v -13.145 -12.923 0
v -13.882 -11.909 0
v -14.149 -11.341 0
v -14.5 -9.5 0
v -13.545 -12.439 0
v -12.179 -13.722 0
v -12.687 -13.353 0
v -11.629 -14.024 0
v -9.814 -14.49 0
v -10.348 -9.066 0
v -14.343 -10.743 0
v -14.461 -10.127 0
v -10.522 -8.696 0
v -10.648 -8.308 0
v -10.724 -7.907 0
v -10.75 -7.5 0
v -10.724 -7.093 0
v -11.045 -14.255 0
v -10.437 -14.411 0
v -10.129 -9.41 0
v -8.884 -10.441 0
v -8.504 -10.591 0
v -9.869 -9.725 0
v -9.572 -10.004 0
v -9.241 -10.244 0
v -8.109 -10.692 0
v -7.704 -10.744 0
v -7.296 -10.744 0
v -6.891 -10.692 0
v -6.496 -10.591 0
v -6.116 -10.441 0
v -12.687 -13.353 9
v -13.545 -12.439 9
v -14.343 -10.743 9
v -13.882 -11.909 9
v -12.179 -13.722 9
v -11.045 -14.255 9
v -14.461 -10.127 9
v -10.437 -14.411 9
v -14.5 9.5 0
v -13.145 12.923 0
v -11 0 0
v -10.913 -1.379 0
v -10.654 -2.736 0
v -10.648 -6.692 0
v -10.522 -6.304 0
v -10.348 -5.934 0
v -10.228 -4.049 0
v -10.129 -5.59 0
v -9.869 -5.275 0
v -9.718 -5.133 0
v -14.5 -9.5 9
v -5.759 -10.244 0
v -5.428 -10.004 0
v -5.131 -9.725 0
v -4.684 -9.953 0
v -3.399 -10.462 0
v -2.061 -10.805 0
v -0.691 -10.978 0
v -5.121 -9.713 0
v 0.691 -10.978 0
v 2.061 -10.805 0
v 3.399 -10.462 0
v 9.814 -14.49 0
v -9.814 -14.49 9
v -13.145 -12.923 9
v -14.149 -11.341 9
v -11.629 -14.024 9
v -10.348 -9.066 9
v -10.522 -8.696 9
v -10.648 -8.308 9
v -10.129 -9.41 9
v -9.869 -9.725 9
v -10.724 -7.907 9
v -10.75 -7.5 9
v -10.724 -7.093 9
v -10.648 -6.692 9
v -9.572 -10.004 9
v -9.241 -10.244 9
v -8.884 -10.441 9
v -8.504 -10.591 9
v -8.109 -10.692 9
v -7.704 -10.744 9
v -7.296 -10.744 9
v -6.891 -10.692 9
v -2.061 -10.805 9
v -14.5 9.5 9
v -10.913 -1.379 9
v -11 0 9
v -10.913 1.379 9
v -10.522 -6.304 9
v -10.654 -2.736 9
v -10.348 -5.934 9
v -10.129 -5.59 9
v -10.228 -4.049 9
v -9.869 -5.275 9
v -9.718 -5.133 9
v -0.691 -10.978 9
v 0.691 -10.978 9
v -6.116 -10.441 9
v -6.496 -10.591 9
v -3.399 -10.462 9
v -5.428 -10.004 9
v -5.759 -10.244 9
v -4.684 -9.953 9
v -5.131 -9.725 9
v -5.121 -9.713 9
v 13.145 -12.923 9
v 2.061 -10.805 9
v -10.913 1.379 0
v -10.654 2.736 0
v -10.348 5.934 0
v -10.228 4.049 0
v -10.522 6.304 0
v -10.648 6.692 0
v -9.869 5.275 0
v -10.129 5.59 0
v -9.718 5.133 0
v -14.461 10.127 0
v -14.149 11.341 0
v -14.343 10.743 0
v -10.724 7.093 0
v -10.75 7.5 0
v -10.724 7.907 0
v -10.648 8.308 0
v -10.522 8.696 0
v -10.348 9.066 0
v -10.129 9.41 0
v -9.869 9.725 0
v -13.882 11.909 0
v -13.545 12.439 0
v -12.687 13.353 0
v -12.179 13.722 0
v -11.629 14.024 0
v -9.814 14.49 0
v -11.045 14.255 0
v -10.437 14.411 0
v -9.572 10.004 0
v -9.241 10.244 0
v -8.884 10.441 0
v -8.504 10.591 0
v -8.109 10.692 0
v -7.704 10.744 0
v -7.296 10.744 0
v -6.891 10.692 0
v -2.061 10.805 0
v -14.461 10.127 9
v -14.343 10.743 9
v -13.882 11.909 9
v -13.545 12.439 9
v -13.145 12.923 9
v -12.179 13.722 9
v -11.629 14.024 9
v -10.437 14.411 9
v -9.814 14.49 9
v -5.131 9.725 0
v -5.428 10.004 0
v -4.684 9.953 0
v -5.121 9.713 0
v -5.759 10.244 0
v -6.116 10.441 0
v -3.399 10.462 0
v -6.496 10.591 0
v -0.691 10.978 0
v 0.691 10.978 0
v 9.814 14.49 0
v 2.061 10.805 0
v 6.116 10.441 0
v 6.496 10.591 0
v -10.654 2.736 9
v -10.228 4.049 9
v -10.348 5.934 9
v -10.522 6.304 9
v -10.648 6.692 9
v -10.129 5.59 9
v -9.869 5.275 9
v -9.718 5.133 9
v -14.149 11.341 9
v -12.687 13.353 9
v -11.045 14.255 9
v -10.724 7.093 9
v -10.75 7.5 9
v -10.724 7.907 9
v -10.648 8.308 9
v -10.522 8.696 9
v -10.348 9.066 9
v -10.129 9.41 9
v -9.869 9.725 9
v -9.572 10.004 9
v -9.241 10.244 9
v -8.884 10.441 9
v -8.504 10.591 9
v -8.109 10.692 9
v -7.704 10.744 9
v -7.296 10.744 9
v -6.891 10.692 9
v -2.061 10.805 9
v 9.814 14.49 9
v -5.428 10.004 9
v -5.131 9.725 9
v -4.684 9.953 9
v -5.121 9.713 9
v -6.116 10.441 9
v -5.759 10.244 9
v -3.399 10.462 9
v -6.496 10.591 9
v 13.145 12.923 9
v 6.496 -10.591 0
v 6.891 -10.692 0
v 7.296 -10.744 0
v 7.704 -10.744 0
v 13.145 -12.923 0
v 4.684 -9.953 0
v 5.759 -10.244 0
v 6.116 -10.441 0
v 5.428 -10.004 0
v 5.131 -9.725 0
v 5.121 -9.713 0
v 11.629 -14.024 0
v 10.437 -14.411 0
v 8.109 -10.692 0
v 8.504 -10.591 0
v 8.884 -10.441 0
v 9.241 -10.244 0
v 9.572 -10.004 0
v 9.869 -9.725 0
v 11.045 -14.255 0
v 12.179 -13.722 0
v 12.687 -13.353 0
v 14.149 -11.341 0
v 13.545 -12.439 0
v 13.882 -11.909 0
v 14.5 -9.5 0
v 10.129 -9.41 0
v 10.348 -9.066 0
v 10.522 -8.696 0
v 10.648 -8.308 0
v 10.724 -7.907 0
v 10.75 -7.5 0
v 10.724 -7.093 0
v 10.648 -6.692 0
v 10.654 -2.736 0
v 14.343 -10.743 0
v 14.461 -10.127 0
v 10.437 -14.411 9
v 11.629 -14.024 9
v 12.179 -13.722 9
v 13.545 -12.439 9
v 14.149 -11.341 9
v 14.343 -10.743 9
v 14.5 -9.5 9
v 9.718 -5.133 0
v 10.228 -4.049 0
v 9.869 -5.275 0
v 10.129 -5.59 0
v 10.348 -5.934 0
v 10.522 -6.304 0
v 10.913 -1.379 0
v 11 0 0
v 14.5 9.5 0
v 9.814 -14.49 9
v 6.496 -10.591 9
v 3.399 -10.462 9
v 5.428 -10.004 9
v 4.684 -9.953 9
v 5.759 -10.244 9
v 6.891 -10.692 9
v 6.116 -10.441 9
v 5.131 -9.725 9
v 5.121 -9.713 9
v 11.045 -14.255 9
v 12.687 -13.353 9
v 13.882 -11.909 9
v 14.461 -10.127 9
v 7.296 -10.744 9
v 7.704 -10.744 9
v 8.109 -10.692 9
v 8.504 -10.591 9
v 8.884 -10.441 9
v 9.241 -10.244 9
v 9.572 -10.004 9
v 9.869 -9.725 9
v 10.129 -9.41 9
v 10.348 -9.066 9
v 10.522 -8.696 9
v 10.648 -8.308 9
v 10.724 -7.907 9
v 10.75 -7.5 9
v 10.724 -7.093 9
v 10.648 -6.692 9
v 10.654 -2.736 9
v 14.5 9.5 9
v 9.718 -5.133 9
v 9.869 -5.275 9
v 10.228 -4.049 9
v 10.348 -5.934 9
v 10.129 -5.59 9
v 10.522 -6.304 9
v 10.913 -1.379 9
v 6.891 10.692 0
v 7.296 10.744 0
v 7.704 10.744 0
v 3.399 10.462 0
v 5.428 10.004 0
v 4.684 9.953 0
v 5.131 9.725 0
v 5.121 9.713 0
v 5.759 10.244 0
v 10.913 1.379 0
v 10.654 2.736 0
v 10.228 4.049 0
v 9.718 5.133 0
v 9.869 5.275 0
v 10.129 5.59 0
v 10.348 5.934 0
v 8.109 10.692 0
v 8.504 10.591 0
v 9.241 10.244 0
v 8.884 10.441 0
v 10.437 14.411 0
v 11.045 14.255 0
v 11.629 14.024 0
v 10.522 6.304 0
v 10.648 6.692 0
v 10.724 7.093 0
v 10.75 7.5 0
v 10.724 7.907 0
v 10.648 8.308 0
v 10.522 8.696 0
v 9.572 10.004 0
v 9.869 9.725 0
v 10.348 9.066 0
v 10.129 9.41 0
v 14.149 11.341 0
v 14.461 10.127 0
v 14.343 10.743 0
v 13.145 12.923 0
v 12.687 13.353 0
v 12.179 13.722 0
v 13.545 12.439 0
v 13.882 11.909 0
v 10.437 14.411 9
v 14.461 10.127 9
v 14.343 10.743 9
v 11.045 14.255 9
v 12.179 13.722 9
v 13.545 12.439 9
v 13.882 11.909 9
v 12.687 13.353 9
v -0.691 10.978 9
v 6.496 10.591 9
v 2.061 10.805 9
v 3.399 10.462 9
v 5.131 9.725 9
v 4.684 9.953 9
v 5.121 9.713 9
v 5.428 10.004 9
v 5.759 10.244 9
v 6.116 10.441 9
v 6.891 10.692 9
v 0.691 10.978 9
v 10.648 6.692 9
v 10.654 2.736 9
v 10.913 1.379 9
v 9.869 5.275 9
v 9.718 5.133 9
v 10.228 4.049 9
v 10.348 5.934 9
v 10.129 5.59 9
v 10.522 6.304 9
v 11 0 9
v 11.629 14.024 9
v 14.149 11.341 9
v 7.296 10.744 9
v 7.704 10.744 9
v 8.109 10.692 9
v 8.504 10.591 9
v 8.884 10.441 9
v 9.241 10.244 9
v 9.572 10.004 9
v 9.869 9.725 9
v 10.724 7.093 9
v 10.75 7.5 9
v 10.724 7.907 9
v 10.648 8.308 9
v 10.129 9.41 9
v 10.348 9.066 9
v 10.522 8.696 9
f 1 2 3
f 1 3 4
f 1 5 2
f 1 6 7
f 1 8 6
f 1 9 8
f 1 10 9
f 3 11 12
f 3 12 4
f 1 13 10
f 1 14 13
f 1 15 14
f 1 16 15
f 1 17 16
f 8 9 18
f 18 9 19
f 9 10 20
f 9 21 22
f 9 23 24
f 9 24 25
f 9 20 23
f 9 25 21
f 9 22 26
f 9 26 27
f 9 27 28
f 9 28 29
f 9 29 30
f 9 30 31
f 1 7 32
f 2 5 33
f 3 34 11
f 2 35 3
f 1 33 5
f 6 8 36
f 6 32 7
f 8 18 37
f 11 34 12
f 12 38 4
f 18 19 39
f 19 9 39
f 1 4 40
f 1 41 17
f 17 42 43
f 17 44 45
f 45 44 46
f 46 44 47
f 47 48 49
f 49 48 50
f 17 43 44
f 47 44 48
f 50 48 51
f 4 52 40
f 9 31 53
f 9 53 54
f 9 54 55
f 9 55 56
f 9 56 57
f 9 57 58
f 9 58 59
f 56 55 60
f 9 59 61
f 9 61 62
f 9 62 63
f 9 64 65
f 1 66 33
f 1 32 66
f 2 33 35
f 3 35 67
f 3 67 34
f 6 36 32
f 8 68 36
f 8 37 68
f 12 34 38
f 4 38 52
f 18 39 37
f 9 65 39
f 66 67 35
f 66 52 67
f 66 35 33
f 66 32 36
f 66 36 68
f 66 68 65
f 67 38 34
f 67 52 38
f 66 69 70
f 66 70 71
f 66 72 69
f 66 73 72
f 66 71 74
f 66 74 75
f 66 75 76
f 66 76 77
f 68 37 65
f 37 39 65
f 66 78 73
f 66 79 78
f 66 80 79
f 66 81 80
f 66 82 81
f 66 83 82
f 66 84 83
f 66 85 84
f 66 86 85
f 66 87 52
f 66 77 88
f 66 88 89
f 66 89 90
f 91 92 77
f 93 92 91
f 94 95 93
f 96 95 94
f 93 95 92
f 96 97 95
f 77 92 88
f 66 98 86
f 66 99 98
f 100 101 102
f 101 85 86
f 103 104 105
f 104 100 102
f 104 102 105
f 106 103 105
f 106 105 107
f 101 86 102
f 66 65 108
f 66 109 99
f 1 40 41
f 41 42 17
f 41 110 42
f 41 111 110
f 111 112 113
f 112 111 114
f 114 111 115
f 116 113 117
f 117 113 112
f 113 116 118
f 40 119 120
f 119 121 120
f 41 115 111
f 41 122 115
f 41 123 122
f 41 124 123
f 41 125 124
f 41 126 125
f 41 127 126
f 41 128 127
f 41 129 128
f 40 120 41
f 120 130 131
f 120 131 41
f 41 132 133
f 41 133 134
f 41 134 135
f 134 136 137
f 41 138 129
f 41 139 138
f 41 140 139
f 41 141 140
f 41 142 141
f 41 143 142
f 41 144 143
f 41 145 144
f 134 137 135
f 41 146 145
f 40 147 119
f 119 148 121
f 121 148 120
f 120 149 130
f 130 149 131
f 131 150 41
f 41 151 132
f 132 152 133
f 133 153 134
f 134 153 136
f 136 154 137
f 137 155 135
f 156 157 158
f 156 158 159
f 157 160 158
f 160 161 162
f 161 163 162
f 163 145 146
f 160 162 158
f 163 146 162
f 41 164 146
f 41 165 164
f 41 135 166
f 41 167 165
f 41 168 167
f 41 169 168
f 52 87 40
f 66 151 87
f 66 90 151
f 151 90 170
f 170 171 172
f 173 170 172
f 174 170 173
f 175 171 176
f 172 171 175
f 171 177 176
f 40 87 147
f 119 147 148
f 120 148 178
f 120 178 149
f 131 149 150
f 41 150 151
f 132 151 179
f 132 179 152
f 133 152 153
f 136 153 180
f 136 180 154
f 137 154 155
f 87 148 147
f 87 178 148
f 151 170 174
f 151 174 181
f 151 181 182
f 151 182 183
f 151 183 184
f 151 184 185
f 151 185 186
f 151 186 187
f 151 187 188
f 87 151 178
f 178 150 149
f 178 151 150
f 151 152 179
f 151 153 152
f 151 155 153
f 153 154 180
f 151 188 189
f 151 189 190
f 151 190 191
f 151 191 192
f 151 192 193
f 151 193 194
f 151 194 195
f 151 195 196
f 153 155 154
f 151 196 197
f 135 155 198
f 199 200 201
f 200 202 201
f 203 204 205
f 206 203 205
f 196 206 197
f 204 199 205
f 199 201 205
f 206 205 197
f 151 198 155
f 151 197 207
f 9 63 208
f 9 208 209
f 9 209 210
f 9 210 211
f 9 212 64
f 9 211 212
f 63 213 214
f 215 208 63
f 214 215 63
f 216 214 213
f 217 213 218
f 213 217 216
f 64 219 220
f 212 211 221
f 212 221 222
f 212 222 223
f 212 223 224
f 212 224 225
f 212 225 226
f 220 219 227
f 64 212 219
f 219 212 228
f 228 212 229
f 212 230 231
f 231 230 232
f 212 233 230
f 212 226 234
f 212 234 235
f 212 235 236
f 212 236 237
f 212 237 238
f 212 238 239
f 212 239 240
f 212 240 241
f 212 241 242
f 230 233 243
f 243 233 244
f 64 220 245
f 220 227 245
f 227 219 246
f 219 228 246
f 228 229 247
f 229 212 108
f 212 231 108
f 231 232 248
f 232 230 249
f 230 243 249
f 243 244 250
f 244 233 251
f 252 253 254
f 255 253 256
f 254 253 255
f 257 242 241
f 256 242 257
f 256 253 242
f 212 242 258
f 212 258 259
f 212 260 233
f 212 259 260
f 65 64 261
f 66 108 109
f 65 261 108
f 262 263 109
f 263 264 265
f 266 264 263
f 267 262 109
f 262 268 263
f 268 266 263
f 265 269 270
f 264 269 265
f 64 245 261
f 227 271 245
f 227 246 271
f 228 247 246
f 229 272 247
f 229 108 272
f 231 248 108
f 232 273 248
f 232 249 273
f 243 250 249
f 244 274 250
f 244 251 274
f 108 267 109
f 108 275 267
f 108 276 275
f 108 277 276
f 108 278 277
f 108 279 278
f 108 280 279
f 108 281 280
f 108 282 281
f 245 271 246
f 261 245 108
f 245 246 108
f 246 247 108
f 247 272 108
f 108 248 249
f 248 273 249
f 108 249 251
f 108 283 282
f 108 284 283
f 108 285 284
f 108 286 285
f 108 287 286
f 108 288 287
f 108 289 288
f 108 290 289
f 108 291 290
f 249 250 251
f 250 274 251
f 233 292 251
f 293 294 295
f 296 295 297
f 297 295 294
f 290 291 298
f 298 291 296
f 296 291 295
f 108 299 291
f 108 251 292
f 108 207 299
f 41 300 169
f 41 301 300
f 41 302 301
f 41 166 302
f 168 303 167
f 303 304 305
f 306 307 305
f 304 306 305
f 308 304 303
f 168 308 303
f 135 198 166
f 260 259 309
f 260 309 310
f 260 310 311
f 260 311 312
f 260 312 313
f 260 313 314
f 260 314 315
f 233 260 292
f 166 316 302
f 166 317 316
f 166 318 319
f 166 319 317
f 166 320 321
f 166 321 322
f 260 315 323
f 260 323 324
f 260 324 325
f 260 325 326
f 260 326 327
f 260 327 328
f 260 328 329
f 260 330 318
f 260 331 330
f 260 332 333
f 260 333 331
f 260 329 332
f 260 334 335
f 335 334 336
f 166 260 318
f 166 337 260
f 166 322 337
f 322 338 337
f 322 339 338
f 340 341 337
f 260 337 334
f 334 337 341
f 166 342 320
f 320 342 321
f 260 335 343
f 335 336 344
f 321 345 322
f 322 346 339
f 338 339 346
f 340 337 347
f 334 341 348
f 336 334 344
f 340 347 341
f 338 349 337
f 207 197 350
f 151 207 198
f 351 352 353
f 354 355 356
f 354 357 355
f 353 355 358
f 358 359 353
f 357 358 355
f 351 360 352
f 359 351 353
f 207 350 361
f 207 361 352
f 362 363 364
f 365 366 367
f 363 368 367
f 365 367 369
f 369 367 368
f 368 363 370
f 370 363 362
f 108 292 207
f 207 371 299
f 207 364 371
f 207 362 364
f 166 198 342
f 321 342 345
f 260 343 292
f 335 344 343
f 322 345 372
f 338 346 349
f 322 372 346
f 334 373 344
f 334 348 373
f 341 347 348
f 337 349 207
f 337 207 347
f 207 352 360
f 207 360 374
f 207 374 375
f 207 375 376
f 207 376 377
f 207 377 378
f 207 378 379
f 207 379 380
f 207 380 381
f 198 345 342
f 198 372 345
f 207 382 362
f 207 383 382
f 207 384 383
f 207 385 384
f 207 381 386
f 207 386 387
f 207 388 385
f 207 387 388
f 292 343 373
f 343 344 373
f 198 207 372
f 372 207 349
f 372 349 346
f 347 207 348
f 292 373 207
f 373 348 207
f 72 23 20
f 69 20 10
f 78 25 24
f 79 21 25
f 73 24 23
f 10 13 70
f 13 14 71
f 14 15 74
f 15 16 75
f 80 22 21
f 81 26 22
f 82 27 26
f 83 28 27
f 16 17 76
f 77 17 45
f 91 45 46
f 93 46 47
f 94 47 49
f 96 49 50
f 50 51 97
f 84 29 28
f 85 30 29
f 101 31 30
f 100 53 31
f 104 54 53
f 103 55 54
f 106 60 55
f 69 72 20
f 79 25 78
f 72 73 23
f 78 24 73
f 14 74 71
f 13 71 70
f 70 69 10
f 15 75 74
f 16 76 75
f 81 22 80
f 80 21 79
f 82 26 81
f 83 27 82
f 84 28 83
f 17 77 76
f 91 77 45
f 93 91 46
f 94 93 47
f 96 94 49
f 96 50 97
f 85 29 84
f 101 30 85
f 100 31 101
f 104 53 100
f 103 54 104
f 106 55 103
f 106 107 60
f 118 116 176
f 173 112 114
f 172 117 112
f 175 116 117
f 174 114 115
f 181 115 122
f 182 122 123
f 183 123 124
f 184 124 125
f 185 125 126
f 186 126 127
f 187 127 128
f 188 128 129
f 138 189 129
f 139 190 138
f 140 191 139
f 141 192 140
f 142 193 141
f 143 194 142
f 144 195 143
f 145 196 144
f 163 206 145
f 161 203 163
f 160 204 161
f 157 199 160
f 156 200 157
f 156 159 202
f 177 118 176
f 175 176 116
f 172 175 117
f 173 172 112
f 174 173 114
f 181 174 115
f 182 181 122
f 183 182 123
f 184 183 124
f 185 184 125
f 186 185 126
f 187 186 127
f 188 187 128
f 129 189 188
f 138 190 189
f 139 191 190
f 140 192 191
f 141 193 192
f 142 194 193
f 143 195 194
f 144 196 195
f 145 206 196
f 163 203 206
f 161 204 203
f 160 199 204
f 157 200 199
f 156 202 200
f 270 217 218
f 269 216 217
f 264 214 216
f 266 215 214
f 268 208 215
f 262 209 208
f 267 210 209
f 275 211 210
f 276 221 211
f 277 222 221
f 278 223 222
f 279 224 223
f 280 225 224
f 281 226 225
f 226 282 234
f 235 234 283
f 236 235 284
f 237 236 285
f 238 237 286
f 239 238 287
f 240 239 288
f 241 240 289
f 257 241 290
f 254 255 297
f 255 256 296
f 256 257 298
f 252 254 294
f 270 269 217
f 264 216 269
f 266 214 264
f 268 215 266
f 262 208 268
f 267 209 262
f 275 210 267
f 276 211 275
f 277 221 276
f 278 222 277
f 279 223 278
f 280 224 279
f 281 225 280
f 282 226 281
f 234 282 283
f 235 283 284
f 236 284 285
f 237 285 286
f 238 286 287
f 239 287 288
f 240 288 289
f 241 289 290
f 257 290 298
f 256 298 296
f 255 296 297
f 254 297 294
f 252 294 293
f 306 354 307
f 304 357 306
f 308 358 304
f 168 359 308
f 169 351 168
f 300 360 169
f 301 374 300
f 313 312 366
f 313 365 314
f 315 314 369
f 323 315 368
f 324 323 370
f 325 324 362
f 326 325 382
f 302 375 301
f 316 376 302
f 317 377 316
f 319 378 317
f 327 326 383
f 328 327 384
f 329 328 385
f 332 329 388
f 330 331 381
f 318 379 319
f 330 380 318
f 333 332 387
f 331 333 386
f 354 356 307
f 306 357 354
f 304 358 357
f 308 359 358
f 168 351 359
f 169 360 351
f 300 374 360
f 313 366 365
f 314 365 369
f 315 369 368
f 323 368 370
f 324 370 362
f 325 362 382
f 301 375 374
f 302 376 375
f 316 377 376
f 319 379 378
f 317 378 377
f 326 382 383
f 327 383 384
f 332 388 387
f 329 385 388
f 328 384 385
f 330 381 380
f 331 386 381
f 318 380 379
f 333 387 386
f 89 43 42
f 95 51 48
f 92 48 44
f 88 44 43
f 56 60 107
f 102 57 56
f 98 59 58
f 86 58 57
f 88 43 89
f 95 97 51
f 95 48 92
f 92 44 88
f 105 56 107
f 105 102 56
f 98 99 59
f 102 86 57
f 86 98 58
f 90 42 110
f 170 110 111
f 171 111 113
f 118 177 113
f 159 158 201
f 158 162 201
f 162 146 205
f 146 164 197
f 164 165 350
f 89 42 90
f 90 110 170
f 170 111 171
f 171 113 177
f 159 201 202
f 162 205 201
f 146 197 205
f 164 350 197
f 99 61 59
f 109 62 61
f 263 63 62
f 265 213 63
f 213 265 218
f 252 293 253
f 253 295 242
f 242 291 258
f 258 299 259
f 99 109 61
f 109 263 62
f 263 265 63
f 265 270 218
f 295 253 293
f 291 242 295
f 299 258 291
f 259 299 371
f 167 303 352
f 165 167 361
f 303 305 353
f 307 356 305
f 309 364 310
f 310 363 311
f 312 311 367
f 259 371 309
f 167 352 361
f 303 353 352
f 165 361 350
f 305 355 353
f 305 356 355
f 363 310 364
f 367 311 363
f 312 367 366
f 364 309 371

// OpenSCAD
$fn = 50;

difference() {
	union() {
		hull() {
			translate(v = [-9.5, 9.5, 0]) {
				cylinder(h = 9, r = 5);
			}
			translate(v = [9.5, 9.5, 0]) {
				cylinder(h = 9, r = 5);
			}
			translate(v = [-9.5, -9.5, 0]) {
				cylinder(h = 9, r = 5);
			}
			translate(v = [9.5, -9.5, 0]) {
				cylinder(h = 9, r = 5);
			}
		}
	}
	union() {
		translate(v = [-7.5, -7.5, -100.0]) {
			cylinder(h = 200, r = 3.25);
		}
		translate(v = [-7.5, 7.5, -100.0]) {
			cylinder(h = 200, r = 3.25);
		}
		translate(v = [7.5, -7.5, -100.0]) {
			cylinder(h = 200, r = 3.25);
		}
		translate(v = [7.5, 7.5, -100.0]) {
			cylinder(h = 200, r = 3.25);
		}
		translate(v = [-7.5, -7.5, -100.0]) {
			cylinder(h = 200, r = 1.8);
		}
		translate(v = [-7.5, 7.5, -100.0]) {
			cylinder(h = 200, r = 1.8);
		}
		translate(v = [7.5, -7.5, -100.0]) {
			cylinder(h = 200, r = 1.8);
		}
		translate(v = [7.5, 7.5, -100.0]) {
			cylinder(h = 200, r = 1.8);
		}
		cylinder(h = 9, r = 11.0);
	}
}
